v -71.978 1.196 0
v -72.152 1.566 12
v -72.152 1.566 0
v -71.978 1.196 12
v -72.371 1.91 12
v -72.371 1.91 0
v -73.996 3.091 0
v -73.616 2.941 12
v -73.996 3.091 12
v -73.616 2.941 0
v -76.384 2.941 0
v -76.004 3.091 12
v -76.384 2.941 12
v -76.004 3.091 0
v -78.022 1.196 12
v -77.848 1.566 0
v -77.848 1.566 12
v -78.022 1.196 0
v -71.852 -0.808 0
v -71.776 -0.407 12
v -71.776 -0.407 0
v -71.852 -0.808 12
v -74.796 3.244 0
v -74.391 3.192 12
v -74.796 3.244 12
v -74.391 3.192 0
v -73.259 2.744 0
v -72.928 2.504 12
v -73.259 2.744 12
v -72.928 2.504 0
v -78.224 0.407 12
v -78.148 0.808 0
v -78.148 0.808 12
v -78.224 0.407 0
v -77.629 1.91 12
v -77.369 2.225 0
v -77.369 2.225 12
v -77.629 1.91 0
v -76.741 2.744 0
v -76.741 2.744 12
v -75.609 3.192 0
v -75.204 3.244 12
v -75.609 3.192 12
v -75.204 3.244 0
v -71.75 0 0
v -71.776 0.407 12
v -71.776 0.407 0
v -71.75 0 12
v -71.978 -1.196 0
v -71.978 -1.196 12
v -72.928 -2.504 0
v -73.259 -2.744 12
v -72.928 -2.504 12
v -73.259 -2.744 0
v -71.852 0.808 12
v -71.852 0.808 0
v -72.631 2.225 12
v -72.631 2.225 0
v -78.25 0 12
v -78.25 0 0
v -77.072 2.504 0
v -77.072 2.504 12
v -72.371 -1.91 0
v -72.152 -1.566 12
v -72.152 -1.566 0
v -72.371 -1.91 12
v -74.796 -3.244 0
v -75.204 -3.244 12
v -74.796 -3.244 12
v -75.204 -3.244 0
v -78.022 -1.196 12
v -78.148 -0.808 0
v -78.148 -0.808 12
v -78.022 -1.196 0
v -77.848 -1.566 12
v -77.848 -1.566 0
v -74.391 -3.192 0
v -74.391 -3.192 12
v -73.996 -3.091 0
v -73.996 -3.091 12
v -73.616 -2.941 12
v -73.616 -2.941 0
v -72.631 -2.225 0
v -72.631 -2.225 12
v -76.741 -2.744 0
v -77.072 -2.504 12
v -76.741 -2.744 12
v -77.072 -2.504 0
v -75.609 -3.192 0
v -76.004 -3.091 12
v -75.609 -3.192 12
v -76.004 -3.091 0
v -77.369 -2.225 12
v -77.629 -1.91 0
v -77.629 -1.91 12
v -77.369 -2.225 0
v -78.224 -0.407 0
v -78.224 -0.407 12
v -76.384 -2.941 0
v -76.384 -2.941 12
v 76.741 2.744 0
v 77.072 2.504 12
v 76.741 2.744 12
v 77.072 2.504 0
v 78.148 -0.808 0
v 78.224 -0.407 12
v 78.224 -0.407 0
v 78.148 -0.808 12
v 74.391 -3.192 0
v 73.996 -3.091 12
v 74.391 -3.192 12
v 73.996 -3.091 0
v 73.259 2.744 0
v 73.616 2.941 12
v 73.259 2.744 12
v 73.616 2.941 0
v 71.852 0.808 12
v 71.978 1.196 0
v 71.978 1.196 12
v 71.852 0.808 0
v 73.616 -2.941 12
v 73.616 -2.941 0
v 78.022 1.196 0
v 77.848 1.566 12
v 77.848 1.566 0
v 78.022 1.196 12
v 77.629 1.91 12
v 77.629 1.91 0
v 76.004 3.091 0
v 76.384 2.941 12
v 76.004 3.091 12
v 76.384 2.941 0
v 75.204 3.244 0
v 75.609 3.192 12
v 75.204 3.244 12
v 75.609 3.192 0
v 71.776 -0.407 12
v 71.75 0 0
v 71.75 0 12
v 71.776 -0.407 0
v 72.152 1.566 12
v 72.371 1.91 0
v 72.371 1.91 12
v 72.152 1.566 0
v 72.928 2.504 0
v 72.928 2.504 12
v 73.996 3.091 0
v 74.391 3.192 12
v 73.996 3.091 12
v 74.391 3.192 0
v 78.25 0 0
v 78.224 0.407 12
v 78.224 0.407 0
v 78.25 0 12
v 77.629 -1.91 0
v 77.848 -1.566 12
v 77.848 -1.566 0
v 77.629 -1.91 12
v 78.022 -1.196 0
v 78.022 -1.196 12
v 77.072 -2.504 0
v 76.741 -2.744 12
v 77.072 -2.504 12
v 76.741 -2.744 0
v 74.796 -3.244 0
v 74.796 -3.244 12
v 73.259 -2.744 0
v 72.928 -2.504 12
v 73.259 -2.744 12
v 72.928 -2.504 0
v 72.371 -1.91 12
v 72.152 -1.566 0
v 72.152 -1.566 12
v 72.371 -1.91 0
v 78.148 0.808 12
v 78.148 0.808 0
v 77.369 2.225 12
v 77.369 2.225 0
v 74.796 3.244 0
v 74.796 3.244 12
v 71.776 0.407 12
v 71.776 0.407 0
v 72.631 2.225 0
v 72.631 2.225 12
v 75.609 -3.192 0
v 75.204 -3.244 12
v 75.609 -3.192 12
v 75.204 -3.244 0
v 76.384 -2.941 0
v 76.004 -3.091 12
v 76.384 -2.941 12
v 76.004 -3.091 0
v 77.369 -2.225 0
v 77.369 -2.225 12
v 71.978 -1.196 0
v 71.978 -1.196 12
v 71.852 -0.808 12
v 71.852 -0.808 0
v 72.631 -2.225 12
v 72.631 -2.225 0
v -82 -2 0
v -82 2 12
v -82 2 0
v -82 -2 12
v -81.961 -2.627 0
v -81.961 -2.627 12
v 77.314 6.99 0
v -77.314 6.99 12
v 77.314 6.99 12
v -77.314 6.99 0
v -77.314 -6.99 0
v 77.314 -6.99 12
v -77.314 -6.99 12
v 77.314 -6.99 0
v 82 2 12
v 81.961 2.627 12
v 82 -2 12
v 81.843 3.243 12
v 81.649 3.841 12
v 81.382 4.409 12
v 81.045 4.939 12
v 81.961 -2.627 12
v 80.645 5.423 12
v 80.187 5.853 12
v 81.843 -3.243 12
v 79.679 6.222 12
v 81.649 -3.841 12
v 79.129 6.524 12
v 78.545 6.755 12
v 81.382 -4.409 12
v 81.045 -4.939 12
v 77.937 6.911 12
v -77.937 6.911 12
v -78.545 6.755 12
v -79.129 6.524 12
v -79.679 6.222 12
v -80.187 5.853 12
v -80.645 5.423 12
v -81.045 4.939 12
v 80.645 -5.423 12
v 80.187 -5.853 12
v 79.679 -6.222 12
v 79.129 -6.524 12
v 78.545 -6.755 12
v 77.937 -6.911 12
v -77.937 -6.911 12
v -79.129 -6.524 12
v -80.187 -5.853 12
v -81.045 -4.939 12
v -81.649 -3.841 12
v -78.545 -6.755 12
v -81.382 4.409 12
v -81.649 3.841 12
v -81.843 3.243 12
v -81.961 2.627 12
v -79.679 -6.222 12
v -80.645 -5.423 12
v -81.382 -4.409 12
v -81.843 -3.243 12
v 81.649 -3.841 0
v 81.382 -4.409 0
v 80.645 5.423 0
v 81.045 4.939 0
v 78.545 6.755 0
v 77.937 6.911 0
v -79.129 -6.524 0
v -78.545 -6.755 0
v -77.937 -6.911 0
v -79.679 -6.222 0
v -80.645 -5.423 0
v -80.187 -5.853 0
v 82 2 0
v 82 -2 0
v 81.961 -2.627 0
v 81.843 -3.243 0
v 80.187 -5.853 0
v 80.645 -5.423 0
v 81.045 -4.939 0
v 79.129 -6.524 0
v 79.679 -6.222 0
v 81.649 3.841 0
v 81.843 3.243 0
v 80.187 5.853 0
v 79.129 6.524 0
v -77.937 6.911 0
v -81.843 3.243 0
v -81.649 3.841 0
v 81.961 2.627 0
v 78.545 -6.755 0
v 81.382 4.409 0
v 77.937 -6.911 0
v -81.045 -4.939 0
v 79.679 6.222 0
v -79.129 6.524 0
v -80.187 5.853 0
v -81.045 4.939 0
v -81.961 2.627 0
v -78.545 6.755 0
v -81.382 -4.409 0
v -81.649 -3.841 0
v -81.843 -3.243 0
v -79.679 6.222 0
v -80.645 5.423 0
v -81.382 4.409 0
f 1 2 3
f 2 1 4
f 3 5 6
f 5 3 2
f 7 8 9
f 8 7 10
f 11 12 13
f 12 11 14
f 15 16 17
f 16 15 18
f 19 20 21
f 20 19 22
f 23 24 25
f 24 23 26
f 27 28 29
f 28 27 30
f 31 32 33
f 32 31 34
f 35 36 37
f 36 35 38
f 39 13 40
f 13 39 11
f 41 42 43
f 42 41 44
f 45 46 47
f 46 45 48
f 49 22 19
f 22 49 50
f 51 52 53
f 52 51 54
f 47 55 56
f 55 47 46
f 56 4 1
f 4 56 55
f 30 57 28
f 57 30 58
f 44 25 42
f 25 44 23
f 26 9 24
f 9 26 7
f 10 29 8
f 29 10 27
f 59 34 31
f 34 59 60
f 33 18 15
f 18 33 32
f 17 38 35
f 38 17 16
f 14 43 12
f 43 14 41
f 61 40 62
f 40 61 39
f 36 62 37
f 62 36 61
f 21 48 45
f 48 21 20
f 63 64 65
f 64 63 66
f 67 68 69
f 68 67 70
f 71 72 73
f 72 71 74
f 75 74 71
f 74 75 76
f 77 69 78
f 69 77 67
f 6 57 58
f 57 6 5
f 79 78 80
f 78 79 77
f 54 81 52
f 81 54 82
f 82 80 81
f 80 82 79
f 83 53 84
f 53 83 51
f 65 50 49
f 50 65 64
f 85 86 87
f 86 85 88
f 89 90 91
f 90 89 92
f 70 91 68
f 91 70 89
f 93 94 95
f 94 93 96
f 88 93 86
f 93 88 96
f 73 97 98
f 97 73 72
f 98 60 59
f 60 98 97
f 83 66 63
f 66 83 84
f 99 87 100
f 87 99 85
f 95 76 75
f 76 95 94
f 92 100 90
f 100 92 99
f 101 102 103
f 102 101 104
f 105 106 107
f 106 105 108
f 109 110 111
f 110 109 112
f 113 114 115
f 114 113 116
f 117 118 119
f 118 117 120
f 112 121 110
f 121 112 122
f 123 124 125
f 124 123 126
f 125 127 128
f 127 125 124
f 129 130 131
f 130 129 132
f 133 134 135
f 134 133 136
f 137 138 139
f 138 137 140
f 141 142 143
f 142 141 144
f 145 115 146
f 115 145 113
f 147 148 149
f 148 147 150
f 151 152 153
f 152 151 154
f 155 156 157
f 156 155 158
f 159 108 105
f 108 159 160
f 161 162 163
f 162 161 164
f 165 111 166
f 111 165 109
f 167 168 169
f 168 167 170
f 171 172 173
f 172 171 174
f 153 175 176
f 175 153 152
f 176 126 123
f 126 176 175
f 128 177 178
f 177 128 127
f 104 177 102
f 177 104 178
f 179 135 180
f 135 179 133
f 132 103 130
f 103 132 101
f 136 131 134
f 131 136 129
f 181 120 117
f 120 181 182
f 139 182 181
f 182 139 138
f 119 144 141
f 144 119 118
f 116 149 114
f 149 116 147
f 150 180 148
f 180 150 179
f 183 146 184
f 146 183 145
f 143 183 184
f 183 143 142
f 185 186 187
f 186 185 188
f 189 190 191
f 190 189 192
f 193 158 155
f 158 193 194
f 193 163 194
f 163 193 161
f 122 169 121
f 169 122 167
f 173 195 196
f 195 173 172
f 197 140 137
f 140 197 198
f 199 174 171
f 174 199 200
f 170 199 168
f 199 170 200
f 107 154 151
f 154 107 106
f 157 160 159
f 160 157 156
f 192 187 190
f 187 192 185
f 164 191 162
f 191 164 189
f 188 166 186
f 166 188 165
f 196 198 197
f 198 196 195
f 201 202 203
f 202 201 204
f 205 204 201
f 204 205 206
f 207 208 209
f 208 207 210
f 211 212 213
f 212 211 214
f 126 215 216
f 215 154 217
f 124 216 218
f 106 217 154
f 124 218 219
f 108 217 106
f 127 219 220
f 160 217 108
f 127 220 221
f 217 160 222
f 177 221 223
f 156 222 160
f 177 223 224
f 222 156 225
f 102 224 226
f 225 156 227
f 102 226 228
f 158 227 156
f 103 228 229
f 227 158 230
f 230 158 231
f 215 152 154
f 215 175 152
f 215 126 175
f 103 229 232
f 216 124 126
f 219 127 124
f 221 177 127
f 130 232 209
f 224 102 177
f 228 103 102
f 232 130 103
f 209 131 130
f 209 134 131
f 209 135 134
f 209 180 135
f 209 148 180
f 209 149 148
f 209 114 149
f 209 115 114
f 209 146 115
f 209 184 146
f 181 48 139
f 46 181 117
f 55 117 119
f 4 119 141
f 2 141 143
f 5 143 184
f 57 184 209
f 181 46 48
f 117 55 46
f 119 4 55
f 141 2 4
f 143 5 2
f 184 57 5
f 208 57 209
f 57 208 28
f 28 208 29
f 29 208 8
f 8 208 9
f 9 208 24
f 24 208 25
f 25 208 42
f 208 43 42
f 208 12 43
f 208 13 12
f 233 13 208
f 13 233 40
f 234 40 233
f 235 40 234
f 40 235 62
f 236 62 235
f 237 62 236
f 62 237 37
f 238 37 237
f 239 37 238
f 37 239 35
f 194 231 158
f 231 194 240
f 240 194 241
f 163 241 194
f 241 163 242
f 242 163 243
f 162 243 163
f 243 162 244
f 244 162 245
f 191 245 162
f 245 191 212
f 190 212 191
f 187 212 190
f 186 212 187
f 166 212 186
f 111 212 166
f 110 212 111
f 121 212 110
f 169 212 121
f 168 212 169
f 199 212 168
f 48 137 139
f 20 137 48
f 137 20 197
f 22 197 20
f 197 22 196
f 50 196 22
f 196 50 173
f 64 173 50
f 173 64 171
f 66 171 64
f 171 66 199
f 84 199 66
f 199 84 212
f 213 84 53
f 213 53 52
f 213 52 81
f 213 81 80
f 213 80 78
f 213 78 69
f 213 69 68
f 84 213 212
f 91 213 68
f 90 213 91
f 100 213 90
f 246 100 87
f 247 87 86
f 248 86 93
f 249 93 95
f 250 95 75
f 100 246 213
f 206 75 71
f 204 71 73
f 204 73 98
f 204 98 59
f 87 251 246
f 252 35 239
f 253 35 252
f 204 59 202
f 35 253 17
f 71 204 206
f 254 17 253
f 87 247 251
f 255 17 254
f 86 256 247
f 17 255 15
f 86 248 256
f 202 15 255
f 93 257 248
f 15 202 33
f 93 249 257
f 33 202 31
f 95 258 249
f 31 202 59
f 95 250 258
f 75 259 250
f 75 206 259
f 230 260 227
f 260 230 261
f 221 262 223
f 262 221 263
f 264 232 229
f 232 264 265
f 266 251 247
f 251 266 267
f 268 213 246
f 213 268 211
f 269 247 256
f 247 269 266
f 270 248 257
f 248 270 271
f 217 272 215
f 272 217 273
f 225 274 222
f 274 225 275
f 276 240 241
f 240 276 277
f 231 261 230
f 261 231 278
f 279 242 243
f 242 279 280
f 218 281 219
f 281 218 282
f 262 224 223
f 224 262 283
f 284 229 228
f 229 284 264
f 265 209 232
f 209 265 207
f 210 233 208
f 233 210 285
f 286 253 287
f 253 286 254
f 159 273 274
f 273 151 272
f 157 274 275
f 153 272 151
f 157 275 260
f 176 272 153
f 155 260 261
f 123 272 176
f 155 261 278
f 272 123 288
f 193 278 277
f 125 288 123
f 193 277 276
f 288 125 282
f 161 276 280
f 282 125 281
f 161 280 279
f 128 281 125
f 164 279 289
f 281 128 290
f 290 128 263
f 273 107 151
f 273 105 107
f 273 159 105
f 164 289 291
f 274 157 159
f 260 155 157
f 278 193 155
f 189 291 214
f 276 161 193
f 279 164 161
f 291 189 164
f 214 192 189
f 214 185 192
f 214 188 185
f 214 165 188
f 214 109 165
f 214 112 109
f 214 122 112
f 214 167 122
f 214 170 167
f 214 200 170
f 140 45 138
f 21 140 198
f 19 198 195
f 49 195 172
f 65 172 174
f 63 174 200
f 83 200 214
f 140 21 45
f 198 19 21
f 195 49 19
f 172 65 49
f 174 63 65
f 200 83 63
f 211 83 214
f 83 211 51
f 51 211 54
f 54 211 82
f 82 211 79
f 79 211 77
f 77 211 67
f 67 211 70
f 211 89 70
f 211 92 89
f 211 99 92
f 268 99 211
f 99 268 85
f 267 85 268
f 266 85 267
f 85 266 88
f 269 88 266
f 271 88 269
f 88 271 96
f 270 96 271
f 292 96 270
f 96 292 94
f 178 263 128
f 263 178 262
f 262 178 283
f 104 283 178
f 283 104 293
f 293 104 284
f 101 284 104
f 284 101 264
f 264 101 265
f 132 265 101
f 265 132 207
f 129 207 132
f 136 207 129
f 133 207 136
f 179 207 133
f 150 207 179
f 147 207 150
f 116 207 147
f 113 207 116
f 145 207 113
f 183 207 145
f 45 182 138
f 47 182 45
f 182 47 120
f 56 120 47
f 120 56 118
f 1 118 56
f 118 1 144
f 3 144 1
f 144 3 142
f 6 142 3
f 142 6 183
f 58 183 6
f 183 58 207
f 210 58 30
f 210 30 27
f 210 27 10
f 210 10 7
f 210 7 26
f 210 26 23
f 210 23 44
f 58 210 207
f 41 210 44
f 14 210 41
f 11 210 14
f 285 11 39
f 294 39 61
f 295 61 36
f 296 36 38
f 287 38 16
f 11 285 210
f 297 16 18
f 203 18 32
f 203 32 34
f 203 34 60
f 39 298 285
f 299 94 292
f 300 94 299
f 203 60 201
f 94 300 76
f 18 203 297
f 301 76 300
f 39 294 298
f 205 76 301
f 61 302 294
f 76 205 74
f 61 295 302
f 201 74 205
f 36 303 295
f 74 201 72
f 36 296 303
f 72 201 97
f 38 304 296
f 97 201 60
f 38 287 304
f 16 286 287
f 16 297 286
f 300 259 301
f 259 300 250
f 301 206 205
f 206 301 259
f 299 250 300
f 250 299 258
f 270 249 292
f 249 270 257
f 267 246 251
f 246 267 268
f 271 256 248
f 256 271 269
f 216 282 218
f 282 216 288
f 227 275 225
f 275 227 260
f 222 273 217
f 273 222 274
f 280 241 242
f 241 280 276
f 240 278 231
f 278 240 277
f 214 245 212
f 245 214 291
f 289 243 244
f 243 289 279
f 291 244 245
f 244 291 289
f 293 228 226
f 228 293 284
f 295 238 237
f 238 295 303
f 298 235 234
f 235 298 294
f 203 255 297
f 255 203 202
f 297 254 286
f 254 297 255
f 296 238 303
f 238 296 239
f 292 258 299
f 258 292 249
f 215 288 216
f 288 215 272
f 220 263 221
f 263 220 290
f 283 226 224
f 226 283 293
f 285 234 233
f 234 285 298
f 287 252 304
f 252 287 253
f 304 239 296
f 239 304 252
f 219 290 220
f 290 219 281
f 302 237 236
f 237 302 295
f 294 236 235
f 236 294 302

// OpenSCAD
$fn = 50;


difference() {
	union() {
		hull() {
			translate(v = [-77.0000000000, 2.0000000000, 0]) {
				cylinder(h = 12, r = 5);
			}
			translate(v = [77.0000000000, 2.0000000000, 0]) {
				cylinder(h = 12, r = 5);
			}
			translate(v = [-77.0000000000, -2.0000000000, 0]) {
				cylinder(h = 12, r = 5);
			}
			translate(v = [77.0000000000, -2.0000000000, 0]) {
				cylinder(h = 12, r = 5);
			}
		}
	}
	union() {
		translate(v = [-75.0000000000, 0.0000000000, -100.0000000000]) {
			cylinder(h = 200, r = 3.2500000000);
		}
		translate(v = [-75.0000000000, 0.0000000000, -100.0000000000]) {
			cylinder(h = 200, r = 3.2500000000);
		}
		translate(v = [75.0000000000, 0.0000000000, -100.0000000000]) {
			cylinder(h = 200, r = 3.2500000000);
		}
		translate(v = [75.0000000000, 0.0000000000, -100.0000000000]) {
			cylinder(h = 200, r = 3.2500000000);
		}
	}
}
